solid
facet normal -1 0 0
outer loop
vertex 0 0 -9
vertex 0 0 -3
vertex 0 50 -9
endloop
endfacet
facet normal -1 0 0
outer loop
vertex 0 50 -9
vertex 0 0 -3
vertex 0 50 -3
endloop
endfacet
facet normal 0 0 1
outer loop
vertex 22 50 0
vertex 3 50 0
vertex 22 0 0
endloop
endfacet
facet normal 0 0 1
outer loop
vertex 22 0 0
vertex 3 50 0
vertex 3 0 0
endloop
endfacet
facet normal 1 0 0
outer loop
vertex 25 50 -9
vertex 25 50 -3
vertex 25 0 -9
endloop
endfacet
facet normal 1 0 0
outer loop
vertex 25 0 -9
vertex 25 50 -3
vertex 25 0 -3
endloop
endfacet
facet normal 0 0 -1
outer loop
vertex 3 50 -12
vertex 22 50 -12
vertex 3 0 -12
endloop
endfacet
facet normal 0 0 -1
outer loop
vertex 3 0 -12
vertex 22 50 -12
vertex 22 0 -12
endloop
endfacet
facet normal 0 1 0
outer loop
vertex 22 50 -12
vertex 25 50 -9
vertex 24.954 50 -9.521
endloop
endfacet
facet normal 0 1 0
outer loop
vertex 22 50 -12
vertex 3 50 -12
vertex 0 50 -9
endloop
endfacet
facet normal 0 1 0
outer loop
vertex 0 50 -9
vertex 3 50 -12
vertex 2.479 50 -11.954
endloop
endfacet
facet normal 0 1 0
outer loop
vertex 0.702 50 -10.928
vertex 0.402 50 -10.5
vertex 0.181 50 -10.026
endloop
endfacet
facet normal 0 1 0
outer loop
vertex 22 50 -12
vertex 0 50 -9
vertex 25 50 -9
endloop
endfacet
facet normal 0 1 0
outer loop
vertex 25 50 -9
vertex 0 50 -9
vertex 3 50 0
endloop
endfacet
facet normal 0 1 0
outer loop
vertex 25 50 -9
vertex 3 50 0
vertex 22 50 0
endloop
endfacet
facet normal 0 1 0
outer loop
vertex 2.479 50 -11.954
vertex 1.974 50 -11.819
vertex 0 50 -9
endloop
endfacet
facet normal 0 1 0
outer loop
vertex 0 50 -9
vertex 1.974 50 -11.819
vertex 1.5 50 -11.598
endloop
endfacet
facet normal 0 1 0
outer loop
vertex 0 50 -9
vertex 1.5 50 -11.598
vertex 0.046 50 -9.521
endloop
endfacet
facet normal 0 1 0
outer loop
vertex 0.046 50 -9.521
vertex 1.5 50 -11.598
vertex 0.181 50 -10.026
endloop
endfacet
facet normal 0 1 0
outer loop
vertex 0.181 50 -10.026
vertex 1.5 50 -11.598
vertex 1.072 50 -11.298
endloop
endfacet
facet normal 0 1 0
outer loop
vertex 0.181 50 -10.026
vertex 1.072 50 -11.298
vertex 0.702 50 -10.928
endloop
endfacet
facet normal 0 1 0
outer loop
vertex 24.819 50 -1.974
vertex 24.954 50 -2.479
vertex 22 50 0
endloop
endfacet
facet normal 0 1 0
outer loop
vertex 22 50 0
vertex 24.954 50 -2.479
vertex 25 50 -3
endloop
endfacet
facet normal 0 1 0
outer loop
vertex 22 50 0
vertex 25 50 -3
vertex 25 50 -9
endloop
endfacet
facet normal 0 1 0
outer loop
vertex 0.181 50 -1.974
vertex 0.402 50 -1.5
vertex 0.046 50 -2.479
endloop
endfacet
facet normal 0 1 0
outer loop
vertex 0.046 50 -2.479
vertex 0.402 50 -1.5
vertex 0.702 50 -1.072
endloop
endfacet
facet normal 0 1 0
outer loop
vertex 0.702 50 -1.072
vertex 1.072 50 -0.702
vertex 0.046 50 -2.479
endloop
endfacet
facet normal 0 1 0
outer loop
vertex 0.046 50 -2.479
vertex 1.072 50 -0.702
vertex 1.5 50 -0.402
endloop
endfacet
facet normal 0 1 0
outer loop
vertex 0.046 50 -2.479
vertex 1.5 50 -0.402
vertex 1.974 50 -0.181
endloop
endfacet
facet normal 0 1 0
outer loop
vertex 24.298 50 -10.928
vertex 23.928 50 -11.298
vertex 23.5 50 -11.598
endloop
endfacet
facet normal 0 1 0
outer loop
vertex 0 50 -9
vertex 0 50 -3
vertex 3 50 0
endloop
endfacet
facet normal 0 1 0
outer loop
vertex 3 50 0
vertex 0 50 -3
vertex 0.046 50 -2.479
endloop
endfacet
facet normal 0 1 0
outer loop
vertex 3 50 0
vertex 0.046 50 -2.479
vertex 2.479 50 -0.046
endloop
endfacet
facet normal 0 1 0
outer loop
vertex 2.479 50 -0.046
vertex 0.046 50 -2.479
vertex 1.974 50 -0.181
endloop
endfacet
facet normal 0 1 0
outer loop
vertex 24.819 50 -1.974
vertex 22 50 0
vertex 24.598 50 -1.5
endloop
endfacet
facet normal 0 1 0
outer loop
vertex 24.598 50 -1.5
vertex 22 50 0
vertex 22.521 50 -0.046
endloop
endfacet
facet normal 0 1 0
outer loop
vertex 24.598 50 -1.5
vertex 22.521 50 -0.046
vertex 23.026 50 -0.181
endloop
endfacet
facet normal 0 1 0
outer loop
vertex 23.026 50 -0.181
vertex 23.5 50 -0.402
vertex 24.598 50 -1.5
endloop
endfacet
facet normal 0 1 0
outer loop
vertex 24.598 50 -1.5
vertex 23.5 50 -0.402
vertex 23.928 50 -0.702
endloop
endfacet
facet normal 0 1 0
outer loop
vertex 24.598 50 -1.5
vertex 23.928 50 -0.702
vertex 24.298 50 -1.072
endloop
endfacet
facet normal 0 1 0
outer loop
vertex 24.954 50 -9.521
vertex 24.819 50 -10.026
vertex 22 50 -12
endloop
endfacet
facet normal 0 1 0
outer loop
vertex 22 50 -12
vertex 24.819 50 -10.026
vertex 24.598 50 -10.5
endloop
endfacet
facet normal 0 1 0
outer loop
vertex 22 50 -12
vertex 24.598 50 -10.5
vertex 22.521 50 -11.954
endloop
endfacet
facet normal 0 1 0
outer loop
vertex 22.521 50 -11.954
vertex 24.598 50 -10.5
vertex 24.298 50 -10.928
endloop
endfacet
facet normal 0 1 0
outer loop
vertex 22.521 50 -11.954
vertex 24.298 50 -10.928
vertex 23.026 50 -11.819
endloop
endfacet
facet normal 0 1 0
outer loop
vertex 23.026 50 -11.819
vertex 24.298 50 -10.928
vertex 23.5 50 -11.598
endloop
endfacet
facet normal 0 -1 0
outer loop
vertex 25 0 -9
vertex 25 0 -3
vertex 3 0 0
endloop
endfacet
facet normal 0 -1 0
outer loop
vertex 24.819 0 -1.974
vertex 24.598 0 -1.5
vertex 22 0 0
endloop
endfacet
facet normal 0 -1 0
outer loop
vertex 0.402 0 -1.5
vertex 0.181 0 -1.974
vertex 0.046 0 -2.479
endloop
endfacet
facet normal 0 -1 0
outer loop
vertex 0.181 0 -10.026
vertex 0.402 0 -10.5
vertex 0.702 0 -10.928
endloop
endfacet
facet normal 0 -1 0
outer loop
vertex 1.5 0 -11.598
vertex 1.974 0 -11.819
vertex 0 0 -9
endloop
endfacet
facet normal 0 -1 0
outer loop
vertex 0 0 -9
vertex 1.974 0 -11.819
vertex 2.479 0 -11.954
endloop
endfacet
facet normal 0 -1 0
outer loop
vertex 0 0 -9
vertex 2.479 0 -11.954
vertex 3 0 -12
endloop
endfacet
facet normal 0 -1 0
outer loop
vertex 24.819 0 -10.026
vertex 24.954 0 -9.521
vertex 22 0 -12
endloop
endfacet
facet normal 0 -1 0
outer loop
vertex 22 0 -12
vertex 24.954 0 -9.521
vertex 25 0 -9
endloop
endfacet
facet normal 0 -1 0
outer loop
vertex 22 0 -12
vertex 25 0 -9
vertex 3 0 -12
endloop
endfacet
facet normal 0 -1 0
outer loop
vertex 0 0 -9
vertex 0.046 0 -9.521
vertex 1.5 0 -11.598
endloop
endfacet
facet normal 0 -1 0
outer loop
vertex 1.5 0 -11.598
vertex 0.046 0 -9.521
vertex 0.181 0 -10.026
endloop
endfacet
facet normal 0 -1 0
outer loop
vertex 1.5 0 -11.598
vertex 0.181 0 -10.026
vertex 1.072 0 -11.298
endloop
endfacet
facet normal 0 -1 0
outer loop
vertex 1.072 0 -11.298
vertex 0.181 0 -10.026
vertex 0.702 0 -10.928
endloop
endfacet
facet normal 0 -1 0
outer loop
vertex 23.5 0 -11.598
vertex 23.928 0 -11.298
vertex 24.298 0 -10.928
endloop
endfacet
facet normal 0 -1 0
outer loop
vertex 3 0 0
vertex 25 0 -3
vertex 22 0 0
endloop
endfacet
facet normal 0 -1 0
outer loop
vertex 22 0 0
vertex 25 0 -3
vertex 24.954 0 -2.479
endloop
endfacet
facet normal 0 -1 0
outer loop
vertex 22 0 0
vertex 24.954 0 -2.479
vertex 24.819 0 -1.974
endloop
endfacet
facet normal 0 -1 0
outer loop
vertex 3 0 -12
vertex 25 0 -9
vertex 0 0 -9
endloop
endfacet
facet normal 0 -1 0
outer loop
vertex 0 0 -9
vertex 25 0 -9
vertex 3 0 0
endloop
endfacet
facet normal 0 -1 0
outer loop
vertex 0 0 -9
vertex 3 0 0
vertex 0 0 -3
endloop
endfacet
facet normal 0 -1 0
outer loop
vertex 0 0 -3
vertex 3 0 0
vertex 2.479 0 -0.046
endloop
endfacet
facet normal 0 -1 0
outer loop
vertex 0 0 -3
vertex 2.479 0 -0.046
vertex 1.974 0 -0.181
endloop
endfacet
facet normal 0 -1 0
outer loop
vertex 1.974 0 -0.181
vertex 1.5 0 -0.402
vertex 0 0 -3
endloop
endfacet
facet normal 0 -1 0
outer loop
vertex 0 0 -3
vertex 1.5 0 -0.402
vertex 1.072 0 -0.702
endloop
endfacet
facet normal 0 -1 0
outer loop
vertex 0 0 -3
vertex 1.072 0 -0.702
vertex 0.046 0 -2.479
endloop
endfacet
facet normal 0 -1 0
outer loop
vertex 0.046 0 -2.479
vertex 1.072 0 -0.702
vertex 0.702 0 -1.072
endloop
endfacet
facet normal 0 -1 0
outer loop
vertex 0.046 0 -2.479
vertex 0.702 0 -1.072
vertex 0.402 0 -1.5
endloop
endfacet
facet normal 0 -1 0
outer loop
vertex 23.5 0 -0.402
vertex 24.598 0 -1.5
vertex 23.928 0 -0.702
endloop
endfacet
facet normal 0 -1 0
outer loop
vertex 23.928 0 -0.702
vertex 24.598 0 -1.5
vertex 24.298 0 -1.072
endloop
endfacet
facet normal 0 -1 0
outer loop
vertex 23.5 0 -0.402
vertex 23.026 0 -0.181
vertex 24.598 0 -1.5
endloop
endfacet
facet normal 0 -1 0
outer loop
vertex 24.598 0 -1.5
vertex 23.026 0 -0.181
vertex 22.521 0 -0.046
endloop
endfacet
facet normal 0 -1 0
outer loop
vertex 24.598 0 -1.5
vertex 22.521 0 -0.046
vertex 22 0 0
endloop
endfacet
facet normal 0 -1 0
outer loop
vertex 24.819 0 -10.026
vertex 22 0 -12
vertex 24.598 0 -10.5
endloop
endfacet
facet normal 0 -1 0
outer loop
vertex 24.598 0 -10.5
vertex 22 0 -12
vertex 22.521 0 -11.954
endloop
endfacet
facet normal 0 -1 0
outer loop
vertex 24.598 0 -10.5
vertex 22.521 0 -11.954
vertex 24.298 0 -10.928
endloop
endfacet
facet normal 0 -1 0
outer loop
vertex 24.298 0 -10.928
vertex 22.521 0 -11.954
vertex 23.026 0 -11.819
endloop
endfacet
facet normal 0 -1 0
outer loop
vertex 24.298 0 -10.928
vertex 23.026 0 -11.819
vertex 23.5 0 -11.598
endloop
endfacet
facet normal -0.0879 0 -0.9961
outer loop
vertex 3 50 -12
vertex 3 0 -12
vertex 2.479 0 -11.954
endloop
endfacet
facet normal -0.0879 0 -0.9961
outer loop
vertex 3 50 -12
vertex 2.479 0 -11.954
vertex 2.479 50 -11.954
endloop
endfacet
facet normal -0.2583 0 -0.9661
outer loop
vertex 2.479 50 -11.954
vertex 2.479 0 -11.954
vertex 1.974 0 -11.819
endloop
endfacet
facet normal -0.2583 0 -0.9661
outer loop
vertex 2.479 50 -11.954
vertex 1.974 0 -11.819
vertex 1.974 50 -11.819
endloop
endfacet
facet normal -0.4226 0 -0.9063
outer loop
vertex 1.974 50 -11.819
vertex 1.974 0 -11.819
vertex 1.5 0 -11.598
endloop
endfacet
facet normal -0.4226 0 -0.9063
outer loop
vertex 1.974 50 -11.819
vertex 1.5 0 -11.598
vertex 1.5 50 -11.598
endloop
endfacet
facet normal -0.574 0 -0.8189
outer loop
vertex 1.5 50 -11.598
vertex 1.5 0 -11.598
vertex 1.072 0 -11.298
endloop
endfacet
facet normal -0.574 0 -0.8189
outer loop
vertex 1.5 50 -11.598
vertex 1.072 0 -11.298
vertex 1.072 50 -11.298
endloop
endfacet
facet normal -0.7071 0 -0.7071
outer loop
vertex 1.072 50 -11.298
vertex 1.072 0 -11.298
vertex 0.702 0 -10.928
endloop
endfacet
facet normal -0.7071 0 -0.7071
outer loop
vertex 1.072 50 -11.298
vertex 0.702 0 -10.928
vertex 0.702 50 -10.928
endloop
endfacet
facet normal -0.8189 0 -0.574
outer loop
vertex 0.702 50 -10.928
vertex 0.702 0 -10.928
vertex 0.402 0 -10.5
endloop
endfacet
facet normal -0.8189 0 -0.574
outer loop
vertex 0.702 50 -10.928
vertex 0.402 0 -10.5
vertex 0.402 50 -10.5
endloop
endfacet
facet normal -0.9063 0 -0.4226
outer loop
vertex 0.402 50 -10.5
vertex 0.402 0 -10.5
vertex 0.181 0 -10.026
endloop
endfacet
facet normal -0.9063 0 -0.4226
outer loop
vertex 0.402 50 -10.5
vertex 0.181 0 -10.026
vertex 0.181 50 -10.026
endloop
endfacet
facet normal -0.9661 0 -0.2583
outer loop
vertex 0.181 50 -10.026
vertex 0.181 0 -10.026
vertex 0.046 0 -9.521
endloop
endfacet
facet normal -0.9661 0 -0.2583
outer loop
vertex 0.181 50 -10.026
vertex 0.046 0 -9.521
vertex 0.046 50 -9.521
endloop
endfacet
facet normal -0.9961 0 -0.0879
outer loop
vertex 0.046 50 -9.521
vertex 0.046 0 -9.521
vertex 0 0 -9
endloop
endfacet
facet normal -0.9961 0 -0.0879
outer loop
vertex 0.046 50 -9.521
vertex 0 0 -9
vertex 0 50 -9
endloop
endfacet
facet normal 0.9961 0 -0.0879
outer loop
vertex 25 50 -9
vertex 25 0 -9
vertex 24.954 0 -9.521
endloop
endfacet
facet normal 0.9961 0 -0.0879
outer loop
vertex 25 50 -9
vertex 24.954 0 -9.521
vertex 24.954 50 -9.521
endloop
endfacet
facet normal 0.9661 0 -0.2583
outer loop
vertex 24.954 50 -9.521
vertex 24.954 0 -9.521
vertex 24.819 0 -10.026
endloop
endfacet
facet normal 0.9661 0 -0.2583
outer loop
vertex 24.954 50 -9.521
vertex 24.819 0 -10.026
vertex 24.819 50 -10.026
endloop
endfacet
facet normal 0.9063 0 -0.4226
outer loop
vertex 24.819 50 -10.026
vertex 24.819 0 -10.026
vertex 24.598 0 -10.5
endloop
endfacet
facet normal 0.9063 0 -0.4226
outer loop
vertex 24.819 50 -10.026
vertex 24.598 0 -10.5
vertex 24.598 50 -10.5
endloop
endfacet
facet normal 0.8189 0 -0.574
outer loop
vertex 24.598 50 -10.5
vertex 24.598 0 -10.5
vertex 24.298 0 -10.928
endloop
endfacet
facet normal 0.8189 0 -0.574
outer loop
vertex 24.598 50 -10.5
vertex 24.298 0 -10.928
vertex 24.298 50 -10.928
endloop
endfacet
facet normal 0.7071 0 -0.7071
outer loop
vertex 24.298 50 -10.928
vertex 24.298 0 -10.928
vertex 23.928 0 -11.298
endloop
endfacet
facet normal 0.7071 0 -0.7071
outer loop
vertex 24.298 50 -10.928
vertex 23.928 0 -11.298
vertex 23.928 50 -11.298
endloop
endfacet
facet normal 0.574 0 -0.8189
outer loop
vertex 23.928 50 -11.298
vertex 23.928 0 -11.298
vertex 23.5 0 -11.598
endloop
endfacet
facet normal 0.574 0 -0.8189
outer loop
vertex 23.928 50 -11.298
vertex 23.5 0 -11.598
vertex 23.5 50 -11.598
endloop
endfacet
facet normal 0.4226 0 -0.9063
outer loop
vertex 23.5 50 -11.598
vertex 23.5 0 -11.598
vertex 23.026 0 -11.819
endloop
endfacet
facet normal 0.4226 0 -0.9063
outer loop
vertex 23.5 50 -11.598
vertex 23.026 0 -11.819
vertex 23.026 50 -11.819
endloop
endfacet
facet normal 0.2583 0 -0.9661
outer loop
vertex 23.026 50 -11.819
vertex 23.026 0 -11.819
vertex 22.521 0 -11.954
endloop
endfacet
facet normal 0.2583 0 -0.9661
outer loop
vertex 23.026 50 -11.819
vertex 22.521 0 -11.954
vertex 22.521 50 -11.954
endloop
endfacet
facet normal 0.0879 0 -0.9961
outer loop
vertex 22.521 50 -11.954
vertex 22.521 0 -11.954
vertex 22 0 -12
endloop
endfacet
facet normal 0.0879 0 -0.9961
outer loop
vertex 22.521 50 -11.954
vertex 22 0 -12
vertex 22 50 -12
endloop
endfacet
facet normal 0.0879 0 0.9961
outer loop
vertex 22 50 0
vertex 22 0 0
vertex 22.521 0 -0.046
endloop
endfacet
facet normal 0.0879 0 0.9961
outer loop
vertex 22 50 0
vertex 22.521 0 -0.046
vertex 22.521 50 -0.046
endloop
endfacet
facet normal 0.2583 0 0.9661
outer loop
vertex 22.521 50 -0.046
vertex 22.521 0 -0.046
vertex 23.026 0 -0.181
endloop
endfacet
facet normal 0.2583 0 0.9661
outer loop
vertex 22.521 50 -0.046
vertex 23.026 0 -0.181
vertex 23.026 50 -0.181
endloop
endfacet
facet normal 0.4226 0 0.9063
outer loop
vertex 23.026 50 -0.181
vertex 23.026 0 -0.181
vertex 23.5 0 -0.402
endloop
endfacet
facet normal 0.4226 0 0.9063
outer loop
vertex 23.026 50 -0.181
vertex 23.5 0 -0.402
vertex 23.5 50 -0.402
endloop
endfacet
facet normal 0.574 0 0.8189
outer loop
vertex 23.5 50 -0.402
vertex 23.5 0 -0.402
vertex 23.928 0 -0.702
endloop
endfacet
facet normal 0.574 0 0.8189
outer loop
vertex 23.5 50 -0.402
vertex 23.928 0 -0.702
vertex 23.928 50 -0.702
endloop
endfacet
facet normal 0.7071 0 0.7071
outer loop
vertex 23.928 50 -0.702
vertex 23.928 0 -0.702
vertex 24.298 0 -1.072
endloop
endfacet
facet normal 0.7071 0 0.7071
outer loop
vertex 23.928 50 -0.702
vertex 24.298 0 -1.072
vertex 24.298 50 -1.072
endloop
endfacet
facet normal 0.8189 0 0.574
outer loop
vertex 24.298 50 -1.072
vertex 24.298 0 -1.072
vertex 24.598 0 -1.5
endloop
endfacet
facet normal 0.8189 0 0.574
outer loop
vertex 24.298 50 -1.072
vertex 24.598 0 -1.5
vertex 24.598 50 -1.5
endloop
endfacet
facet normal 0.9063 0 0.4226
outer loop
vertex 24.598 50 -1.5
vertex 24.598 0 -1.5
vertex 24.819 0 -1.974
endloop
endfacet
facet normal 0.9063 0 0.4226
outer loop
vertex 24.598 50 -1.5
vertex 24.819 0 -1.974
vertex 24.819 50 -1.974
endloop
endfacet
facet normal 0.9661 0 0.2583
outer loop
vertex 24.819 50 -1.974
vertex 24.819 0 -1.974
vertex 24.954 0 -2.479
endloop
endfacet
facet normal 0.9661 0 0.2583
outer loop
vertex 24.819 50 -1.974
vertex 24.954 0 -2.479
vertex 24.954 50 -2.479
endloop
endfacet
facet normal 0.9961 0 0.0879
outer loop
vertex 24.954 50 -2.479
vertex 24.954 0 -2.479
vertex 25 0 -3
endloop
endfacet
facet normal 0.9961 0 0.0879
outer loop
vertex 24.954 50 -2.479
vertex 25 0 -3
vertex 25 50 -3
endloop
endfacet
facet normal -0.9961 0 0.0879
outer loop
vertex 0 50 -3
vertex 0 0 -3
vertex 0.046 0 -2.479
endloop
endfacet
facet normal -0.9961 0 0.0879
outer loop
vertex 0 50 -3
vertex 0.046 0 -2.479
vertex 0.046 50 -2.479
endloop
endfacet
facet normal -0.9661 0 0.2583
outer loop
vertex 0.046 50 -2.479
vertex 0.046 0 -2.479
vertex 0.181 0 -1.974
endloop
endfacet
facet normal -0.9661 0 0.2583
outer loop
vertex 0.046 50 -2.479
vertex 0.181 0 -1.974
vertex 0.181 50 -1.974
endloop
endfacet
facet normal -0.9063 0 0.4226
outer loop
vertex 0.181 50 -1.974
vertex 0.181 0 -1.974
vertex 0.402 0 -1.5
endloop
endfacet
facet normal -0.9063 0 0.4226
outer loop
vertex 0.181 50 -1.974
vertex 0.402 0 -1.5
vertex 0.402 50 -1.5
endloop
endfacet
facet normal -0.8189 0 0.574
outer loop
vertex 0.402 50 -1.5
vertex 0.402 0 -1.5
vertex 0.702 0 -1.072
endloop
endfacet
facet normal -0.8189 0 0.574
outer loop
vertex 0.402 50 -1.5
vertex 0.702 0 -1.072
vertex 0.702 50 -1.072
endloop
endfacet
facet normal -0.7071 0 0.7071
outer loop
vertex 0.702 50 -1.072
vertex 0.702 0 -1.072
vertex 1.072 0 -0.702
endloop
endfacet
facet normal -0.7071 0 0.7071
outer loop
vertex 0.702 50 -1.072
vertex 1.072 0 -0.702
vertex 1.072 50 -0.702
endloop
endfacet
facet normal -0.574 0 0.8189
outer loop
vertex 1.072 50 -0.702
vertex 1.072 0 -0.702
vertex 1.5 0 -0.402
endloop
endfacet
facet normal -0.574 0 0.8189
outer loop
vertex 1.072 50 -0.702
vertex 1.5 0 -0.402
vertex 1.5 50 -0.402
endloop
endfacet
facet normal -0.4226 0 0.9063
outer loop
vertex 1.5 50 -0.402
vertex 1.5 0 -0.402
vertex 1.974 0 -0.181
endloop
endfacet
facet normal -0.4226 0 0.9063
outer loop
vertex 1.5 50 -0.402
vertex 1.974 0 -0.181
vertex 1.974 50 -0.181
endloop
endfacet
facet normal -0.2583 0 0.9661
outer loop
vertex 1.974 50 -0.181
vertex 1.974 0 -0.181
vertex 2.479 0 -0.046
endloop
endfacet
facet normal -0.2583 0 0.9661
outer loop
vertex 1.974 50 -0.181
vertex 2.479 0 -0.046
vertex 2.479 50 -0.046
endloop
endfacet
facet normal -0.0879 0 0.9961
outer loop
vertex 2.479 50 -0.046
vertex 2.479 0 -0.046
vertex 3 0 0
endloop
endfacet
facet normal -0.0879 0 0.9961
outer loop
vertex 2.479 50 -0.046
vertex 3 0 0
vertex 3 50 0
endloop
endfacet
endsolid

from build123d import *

# Parameters (mm, degrees)
SKIZZE1_W                       = 25
SKIZZE1_H                       = 12
AUFSATZ_LINEAR_AUSTRAGEN1_DEPTH = 50
VERRUNDUNG1_R                   = 3


with BuildPart() as part:
    # Skizze1 → Aufsatz-Linear austragen1 (new body)
    with BuildSketch(Plane(origin=(0, 0, 0), x_dir=(1, 0, 0), z_dir=(0, 1, 0))):
        with Locations((12.5, 6)):
            Rectangle(SKIZZE1_W, SKIZZE1_H)
    extrude(amount=AUFSATZ_LINEAR_AUSTRAGEN1_DEPTH)

    # Verrundung1
    verrundung1_edges = [part.edges().sort_by_distance(p)[0] for p in [
        (0, 25, -12),
        (25, 25, -12),
        (25, 25, 0),
        (0, 25, 0),
    ]]
    fillet(verrundung1_edges, radius=VERRUNDUNG1_R)


solid = part.part
